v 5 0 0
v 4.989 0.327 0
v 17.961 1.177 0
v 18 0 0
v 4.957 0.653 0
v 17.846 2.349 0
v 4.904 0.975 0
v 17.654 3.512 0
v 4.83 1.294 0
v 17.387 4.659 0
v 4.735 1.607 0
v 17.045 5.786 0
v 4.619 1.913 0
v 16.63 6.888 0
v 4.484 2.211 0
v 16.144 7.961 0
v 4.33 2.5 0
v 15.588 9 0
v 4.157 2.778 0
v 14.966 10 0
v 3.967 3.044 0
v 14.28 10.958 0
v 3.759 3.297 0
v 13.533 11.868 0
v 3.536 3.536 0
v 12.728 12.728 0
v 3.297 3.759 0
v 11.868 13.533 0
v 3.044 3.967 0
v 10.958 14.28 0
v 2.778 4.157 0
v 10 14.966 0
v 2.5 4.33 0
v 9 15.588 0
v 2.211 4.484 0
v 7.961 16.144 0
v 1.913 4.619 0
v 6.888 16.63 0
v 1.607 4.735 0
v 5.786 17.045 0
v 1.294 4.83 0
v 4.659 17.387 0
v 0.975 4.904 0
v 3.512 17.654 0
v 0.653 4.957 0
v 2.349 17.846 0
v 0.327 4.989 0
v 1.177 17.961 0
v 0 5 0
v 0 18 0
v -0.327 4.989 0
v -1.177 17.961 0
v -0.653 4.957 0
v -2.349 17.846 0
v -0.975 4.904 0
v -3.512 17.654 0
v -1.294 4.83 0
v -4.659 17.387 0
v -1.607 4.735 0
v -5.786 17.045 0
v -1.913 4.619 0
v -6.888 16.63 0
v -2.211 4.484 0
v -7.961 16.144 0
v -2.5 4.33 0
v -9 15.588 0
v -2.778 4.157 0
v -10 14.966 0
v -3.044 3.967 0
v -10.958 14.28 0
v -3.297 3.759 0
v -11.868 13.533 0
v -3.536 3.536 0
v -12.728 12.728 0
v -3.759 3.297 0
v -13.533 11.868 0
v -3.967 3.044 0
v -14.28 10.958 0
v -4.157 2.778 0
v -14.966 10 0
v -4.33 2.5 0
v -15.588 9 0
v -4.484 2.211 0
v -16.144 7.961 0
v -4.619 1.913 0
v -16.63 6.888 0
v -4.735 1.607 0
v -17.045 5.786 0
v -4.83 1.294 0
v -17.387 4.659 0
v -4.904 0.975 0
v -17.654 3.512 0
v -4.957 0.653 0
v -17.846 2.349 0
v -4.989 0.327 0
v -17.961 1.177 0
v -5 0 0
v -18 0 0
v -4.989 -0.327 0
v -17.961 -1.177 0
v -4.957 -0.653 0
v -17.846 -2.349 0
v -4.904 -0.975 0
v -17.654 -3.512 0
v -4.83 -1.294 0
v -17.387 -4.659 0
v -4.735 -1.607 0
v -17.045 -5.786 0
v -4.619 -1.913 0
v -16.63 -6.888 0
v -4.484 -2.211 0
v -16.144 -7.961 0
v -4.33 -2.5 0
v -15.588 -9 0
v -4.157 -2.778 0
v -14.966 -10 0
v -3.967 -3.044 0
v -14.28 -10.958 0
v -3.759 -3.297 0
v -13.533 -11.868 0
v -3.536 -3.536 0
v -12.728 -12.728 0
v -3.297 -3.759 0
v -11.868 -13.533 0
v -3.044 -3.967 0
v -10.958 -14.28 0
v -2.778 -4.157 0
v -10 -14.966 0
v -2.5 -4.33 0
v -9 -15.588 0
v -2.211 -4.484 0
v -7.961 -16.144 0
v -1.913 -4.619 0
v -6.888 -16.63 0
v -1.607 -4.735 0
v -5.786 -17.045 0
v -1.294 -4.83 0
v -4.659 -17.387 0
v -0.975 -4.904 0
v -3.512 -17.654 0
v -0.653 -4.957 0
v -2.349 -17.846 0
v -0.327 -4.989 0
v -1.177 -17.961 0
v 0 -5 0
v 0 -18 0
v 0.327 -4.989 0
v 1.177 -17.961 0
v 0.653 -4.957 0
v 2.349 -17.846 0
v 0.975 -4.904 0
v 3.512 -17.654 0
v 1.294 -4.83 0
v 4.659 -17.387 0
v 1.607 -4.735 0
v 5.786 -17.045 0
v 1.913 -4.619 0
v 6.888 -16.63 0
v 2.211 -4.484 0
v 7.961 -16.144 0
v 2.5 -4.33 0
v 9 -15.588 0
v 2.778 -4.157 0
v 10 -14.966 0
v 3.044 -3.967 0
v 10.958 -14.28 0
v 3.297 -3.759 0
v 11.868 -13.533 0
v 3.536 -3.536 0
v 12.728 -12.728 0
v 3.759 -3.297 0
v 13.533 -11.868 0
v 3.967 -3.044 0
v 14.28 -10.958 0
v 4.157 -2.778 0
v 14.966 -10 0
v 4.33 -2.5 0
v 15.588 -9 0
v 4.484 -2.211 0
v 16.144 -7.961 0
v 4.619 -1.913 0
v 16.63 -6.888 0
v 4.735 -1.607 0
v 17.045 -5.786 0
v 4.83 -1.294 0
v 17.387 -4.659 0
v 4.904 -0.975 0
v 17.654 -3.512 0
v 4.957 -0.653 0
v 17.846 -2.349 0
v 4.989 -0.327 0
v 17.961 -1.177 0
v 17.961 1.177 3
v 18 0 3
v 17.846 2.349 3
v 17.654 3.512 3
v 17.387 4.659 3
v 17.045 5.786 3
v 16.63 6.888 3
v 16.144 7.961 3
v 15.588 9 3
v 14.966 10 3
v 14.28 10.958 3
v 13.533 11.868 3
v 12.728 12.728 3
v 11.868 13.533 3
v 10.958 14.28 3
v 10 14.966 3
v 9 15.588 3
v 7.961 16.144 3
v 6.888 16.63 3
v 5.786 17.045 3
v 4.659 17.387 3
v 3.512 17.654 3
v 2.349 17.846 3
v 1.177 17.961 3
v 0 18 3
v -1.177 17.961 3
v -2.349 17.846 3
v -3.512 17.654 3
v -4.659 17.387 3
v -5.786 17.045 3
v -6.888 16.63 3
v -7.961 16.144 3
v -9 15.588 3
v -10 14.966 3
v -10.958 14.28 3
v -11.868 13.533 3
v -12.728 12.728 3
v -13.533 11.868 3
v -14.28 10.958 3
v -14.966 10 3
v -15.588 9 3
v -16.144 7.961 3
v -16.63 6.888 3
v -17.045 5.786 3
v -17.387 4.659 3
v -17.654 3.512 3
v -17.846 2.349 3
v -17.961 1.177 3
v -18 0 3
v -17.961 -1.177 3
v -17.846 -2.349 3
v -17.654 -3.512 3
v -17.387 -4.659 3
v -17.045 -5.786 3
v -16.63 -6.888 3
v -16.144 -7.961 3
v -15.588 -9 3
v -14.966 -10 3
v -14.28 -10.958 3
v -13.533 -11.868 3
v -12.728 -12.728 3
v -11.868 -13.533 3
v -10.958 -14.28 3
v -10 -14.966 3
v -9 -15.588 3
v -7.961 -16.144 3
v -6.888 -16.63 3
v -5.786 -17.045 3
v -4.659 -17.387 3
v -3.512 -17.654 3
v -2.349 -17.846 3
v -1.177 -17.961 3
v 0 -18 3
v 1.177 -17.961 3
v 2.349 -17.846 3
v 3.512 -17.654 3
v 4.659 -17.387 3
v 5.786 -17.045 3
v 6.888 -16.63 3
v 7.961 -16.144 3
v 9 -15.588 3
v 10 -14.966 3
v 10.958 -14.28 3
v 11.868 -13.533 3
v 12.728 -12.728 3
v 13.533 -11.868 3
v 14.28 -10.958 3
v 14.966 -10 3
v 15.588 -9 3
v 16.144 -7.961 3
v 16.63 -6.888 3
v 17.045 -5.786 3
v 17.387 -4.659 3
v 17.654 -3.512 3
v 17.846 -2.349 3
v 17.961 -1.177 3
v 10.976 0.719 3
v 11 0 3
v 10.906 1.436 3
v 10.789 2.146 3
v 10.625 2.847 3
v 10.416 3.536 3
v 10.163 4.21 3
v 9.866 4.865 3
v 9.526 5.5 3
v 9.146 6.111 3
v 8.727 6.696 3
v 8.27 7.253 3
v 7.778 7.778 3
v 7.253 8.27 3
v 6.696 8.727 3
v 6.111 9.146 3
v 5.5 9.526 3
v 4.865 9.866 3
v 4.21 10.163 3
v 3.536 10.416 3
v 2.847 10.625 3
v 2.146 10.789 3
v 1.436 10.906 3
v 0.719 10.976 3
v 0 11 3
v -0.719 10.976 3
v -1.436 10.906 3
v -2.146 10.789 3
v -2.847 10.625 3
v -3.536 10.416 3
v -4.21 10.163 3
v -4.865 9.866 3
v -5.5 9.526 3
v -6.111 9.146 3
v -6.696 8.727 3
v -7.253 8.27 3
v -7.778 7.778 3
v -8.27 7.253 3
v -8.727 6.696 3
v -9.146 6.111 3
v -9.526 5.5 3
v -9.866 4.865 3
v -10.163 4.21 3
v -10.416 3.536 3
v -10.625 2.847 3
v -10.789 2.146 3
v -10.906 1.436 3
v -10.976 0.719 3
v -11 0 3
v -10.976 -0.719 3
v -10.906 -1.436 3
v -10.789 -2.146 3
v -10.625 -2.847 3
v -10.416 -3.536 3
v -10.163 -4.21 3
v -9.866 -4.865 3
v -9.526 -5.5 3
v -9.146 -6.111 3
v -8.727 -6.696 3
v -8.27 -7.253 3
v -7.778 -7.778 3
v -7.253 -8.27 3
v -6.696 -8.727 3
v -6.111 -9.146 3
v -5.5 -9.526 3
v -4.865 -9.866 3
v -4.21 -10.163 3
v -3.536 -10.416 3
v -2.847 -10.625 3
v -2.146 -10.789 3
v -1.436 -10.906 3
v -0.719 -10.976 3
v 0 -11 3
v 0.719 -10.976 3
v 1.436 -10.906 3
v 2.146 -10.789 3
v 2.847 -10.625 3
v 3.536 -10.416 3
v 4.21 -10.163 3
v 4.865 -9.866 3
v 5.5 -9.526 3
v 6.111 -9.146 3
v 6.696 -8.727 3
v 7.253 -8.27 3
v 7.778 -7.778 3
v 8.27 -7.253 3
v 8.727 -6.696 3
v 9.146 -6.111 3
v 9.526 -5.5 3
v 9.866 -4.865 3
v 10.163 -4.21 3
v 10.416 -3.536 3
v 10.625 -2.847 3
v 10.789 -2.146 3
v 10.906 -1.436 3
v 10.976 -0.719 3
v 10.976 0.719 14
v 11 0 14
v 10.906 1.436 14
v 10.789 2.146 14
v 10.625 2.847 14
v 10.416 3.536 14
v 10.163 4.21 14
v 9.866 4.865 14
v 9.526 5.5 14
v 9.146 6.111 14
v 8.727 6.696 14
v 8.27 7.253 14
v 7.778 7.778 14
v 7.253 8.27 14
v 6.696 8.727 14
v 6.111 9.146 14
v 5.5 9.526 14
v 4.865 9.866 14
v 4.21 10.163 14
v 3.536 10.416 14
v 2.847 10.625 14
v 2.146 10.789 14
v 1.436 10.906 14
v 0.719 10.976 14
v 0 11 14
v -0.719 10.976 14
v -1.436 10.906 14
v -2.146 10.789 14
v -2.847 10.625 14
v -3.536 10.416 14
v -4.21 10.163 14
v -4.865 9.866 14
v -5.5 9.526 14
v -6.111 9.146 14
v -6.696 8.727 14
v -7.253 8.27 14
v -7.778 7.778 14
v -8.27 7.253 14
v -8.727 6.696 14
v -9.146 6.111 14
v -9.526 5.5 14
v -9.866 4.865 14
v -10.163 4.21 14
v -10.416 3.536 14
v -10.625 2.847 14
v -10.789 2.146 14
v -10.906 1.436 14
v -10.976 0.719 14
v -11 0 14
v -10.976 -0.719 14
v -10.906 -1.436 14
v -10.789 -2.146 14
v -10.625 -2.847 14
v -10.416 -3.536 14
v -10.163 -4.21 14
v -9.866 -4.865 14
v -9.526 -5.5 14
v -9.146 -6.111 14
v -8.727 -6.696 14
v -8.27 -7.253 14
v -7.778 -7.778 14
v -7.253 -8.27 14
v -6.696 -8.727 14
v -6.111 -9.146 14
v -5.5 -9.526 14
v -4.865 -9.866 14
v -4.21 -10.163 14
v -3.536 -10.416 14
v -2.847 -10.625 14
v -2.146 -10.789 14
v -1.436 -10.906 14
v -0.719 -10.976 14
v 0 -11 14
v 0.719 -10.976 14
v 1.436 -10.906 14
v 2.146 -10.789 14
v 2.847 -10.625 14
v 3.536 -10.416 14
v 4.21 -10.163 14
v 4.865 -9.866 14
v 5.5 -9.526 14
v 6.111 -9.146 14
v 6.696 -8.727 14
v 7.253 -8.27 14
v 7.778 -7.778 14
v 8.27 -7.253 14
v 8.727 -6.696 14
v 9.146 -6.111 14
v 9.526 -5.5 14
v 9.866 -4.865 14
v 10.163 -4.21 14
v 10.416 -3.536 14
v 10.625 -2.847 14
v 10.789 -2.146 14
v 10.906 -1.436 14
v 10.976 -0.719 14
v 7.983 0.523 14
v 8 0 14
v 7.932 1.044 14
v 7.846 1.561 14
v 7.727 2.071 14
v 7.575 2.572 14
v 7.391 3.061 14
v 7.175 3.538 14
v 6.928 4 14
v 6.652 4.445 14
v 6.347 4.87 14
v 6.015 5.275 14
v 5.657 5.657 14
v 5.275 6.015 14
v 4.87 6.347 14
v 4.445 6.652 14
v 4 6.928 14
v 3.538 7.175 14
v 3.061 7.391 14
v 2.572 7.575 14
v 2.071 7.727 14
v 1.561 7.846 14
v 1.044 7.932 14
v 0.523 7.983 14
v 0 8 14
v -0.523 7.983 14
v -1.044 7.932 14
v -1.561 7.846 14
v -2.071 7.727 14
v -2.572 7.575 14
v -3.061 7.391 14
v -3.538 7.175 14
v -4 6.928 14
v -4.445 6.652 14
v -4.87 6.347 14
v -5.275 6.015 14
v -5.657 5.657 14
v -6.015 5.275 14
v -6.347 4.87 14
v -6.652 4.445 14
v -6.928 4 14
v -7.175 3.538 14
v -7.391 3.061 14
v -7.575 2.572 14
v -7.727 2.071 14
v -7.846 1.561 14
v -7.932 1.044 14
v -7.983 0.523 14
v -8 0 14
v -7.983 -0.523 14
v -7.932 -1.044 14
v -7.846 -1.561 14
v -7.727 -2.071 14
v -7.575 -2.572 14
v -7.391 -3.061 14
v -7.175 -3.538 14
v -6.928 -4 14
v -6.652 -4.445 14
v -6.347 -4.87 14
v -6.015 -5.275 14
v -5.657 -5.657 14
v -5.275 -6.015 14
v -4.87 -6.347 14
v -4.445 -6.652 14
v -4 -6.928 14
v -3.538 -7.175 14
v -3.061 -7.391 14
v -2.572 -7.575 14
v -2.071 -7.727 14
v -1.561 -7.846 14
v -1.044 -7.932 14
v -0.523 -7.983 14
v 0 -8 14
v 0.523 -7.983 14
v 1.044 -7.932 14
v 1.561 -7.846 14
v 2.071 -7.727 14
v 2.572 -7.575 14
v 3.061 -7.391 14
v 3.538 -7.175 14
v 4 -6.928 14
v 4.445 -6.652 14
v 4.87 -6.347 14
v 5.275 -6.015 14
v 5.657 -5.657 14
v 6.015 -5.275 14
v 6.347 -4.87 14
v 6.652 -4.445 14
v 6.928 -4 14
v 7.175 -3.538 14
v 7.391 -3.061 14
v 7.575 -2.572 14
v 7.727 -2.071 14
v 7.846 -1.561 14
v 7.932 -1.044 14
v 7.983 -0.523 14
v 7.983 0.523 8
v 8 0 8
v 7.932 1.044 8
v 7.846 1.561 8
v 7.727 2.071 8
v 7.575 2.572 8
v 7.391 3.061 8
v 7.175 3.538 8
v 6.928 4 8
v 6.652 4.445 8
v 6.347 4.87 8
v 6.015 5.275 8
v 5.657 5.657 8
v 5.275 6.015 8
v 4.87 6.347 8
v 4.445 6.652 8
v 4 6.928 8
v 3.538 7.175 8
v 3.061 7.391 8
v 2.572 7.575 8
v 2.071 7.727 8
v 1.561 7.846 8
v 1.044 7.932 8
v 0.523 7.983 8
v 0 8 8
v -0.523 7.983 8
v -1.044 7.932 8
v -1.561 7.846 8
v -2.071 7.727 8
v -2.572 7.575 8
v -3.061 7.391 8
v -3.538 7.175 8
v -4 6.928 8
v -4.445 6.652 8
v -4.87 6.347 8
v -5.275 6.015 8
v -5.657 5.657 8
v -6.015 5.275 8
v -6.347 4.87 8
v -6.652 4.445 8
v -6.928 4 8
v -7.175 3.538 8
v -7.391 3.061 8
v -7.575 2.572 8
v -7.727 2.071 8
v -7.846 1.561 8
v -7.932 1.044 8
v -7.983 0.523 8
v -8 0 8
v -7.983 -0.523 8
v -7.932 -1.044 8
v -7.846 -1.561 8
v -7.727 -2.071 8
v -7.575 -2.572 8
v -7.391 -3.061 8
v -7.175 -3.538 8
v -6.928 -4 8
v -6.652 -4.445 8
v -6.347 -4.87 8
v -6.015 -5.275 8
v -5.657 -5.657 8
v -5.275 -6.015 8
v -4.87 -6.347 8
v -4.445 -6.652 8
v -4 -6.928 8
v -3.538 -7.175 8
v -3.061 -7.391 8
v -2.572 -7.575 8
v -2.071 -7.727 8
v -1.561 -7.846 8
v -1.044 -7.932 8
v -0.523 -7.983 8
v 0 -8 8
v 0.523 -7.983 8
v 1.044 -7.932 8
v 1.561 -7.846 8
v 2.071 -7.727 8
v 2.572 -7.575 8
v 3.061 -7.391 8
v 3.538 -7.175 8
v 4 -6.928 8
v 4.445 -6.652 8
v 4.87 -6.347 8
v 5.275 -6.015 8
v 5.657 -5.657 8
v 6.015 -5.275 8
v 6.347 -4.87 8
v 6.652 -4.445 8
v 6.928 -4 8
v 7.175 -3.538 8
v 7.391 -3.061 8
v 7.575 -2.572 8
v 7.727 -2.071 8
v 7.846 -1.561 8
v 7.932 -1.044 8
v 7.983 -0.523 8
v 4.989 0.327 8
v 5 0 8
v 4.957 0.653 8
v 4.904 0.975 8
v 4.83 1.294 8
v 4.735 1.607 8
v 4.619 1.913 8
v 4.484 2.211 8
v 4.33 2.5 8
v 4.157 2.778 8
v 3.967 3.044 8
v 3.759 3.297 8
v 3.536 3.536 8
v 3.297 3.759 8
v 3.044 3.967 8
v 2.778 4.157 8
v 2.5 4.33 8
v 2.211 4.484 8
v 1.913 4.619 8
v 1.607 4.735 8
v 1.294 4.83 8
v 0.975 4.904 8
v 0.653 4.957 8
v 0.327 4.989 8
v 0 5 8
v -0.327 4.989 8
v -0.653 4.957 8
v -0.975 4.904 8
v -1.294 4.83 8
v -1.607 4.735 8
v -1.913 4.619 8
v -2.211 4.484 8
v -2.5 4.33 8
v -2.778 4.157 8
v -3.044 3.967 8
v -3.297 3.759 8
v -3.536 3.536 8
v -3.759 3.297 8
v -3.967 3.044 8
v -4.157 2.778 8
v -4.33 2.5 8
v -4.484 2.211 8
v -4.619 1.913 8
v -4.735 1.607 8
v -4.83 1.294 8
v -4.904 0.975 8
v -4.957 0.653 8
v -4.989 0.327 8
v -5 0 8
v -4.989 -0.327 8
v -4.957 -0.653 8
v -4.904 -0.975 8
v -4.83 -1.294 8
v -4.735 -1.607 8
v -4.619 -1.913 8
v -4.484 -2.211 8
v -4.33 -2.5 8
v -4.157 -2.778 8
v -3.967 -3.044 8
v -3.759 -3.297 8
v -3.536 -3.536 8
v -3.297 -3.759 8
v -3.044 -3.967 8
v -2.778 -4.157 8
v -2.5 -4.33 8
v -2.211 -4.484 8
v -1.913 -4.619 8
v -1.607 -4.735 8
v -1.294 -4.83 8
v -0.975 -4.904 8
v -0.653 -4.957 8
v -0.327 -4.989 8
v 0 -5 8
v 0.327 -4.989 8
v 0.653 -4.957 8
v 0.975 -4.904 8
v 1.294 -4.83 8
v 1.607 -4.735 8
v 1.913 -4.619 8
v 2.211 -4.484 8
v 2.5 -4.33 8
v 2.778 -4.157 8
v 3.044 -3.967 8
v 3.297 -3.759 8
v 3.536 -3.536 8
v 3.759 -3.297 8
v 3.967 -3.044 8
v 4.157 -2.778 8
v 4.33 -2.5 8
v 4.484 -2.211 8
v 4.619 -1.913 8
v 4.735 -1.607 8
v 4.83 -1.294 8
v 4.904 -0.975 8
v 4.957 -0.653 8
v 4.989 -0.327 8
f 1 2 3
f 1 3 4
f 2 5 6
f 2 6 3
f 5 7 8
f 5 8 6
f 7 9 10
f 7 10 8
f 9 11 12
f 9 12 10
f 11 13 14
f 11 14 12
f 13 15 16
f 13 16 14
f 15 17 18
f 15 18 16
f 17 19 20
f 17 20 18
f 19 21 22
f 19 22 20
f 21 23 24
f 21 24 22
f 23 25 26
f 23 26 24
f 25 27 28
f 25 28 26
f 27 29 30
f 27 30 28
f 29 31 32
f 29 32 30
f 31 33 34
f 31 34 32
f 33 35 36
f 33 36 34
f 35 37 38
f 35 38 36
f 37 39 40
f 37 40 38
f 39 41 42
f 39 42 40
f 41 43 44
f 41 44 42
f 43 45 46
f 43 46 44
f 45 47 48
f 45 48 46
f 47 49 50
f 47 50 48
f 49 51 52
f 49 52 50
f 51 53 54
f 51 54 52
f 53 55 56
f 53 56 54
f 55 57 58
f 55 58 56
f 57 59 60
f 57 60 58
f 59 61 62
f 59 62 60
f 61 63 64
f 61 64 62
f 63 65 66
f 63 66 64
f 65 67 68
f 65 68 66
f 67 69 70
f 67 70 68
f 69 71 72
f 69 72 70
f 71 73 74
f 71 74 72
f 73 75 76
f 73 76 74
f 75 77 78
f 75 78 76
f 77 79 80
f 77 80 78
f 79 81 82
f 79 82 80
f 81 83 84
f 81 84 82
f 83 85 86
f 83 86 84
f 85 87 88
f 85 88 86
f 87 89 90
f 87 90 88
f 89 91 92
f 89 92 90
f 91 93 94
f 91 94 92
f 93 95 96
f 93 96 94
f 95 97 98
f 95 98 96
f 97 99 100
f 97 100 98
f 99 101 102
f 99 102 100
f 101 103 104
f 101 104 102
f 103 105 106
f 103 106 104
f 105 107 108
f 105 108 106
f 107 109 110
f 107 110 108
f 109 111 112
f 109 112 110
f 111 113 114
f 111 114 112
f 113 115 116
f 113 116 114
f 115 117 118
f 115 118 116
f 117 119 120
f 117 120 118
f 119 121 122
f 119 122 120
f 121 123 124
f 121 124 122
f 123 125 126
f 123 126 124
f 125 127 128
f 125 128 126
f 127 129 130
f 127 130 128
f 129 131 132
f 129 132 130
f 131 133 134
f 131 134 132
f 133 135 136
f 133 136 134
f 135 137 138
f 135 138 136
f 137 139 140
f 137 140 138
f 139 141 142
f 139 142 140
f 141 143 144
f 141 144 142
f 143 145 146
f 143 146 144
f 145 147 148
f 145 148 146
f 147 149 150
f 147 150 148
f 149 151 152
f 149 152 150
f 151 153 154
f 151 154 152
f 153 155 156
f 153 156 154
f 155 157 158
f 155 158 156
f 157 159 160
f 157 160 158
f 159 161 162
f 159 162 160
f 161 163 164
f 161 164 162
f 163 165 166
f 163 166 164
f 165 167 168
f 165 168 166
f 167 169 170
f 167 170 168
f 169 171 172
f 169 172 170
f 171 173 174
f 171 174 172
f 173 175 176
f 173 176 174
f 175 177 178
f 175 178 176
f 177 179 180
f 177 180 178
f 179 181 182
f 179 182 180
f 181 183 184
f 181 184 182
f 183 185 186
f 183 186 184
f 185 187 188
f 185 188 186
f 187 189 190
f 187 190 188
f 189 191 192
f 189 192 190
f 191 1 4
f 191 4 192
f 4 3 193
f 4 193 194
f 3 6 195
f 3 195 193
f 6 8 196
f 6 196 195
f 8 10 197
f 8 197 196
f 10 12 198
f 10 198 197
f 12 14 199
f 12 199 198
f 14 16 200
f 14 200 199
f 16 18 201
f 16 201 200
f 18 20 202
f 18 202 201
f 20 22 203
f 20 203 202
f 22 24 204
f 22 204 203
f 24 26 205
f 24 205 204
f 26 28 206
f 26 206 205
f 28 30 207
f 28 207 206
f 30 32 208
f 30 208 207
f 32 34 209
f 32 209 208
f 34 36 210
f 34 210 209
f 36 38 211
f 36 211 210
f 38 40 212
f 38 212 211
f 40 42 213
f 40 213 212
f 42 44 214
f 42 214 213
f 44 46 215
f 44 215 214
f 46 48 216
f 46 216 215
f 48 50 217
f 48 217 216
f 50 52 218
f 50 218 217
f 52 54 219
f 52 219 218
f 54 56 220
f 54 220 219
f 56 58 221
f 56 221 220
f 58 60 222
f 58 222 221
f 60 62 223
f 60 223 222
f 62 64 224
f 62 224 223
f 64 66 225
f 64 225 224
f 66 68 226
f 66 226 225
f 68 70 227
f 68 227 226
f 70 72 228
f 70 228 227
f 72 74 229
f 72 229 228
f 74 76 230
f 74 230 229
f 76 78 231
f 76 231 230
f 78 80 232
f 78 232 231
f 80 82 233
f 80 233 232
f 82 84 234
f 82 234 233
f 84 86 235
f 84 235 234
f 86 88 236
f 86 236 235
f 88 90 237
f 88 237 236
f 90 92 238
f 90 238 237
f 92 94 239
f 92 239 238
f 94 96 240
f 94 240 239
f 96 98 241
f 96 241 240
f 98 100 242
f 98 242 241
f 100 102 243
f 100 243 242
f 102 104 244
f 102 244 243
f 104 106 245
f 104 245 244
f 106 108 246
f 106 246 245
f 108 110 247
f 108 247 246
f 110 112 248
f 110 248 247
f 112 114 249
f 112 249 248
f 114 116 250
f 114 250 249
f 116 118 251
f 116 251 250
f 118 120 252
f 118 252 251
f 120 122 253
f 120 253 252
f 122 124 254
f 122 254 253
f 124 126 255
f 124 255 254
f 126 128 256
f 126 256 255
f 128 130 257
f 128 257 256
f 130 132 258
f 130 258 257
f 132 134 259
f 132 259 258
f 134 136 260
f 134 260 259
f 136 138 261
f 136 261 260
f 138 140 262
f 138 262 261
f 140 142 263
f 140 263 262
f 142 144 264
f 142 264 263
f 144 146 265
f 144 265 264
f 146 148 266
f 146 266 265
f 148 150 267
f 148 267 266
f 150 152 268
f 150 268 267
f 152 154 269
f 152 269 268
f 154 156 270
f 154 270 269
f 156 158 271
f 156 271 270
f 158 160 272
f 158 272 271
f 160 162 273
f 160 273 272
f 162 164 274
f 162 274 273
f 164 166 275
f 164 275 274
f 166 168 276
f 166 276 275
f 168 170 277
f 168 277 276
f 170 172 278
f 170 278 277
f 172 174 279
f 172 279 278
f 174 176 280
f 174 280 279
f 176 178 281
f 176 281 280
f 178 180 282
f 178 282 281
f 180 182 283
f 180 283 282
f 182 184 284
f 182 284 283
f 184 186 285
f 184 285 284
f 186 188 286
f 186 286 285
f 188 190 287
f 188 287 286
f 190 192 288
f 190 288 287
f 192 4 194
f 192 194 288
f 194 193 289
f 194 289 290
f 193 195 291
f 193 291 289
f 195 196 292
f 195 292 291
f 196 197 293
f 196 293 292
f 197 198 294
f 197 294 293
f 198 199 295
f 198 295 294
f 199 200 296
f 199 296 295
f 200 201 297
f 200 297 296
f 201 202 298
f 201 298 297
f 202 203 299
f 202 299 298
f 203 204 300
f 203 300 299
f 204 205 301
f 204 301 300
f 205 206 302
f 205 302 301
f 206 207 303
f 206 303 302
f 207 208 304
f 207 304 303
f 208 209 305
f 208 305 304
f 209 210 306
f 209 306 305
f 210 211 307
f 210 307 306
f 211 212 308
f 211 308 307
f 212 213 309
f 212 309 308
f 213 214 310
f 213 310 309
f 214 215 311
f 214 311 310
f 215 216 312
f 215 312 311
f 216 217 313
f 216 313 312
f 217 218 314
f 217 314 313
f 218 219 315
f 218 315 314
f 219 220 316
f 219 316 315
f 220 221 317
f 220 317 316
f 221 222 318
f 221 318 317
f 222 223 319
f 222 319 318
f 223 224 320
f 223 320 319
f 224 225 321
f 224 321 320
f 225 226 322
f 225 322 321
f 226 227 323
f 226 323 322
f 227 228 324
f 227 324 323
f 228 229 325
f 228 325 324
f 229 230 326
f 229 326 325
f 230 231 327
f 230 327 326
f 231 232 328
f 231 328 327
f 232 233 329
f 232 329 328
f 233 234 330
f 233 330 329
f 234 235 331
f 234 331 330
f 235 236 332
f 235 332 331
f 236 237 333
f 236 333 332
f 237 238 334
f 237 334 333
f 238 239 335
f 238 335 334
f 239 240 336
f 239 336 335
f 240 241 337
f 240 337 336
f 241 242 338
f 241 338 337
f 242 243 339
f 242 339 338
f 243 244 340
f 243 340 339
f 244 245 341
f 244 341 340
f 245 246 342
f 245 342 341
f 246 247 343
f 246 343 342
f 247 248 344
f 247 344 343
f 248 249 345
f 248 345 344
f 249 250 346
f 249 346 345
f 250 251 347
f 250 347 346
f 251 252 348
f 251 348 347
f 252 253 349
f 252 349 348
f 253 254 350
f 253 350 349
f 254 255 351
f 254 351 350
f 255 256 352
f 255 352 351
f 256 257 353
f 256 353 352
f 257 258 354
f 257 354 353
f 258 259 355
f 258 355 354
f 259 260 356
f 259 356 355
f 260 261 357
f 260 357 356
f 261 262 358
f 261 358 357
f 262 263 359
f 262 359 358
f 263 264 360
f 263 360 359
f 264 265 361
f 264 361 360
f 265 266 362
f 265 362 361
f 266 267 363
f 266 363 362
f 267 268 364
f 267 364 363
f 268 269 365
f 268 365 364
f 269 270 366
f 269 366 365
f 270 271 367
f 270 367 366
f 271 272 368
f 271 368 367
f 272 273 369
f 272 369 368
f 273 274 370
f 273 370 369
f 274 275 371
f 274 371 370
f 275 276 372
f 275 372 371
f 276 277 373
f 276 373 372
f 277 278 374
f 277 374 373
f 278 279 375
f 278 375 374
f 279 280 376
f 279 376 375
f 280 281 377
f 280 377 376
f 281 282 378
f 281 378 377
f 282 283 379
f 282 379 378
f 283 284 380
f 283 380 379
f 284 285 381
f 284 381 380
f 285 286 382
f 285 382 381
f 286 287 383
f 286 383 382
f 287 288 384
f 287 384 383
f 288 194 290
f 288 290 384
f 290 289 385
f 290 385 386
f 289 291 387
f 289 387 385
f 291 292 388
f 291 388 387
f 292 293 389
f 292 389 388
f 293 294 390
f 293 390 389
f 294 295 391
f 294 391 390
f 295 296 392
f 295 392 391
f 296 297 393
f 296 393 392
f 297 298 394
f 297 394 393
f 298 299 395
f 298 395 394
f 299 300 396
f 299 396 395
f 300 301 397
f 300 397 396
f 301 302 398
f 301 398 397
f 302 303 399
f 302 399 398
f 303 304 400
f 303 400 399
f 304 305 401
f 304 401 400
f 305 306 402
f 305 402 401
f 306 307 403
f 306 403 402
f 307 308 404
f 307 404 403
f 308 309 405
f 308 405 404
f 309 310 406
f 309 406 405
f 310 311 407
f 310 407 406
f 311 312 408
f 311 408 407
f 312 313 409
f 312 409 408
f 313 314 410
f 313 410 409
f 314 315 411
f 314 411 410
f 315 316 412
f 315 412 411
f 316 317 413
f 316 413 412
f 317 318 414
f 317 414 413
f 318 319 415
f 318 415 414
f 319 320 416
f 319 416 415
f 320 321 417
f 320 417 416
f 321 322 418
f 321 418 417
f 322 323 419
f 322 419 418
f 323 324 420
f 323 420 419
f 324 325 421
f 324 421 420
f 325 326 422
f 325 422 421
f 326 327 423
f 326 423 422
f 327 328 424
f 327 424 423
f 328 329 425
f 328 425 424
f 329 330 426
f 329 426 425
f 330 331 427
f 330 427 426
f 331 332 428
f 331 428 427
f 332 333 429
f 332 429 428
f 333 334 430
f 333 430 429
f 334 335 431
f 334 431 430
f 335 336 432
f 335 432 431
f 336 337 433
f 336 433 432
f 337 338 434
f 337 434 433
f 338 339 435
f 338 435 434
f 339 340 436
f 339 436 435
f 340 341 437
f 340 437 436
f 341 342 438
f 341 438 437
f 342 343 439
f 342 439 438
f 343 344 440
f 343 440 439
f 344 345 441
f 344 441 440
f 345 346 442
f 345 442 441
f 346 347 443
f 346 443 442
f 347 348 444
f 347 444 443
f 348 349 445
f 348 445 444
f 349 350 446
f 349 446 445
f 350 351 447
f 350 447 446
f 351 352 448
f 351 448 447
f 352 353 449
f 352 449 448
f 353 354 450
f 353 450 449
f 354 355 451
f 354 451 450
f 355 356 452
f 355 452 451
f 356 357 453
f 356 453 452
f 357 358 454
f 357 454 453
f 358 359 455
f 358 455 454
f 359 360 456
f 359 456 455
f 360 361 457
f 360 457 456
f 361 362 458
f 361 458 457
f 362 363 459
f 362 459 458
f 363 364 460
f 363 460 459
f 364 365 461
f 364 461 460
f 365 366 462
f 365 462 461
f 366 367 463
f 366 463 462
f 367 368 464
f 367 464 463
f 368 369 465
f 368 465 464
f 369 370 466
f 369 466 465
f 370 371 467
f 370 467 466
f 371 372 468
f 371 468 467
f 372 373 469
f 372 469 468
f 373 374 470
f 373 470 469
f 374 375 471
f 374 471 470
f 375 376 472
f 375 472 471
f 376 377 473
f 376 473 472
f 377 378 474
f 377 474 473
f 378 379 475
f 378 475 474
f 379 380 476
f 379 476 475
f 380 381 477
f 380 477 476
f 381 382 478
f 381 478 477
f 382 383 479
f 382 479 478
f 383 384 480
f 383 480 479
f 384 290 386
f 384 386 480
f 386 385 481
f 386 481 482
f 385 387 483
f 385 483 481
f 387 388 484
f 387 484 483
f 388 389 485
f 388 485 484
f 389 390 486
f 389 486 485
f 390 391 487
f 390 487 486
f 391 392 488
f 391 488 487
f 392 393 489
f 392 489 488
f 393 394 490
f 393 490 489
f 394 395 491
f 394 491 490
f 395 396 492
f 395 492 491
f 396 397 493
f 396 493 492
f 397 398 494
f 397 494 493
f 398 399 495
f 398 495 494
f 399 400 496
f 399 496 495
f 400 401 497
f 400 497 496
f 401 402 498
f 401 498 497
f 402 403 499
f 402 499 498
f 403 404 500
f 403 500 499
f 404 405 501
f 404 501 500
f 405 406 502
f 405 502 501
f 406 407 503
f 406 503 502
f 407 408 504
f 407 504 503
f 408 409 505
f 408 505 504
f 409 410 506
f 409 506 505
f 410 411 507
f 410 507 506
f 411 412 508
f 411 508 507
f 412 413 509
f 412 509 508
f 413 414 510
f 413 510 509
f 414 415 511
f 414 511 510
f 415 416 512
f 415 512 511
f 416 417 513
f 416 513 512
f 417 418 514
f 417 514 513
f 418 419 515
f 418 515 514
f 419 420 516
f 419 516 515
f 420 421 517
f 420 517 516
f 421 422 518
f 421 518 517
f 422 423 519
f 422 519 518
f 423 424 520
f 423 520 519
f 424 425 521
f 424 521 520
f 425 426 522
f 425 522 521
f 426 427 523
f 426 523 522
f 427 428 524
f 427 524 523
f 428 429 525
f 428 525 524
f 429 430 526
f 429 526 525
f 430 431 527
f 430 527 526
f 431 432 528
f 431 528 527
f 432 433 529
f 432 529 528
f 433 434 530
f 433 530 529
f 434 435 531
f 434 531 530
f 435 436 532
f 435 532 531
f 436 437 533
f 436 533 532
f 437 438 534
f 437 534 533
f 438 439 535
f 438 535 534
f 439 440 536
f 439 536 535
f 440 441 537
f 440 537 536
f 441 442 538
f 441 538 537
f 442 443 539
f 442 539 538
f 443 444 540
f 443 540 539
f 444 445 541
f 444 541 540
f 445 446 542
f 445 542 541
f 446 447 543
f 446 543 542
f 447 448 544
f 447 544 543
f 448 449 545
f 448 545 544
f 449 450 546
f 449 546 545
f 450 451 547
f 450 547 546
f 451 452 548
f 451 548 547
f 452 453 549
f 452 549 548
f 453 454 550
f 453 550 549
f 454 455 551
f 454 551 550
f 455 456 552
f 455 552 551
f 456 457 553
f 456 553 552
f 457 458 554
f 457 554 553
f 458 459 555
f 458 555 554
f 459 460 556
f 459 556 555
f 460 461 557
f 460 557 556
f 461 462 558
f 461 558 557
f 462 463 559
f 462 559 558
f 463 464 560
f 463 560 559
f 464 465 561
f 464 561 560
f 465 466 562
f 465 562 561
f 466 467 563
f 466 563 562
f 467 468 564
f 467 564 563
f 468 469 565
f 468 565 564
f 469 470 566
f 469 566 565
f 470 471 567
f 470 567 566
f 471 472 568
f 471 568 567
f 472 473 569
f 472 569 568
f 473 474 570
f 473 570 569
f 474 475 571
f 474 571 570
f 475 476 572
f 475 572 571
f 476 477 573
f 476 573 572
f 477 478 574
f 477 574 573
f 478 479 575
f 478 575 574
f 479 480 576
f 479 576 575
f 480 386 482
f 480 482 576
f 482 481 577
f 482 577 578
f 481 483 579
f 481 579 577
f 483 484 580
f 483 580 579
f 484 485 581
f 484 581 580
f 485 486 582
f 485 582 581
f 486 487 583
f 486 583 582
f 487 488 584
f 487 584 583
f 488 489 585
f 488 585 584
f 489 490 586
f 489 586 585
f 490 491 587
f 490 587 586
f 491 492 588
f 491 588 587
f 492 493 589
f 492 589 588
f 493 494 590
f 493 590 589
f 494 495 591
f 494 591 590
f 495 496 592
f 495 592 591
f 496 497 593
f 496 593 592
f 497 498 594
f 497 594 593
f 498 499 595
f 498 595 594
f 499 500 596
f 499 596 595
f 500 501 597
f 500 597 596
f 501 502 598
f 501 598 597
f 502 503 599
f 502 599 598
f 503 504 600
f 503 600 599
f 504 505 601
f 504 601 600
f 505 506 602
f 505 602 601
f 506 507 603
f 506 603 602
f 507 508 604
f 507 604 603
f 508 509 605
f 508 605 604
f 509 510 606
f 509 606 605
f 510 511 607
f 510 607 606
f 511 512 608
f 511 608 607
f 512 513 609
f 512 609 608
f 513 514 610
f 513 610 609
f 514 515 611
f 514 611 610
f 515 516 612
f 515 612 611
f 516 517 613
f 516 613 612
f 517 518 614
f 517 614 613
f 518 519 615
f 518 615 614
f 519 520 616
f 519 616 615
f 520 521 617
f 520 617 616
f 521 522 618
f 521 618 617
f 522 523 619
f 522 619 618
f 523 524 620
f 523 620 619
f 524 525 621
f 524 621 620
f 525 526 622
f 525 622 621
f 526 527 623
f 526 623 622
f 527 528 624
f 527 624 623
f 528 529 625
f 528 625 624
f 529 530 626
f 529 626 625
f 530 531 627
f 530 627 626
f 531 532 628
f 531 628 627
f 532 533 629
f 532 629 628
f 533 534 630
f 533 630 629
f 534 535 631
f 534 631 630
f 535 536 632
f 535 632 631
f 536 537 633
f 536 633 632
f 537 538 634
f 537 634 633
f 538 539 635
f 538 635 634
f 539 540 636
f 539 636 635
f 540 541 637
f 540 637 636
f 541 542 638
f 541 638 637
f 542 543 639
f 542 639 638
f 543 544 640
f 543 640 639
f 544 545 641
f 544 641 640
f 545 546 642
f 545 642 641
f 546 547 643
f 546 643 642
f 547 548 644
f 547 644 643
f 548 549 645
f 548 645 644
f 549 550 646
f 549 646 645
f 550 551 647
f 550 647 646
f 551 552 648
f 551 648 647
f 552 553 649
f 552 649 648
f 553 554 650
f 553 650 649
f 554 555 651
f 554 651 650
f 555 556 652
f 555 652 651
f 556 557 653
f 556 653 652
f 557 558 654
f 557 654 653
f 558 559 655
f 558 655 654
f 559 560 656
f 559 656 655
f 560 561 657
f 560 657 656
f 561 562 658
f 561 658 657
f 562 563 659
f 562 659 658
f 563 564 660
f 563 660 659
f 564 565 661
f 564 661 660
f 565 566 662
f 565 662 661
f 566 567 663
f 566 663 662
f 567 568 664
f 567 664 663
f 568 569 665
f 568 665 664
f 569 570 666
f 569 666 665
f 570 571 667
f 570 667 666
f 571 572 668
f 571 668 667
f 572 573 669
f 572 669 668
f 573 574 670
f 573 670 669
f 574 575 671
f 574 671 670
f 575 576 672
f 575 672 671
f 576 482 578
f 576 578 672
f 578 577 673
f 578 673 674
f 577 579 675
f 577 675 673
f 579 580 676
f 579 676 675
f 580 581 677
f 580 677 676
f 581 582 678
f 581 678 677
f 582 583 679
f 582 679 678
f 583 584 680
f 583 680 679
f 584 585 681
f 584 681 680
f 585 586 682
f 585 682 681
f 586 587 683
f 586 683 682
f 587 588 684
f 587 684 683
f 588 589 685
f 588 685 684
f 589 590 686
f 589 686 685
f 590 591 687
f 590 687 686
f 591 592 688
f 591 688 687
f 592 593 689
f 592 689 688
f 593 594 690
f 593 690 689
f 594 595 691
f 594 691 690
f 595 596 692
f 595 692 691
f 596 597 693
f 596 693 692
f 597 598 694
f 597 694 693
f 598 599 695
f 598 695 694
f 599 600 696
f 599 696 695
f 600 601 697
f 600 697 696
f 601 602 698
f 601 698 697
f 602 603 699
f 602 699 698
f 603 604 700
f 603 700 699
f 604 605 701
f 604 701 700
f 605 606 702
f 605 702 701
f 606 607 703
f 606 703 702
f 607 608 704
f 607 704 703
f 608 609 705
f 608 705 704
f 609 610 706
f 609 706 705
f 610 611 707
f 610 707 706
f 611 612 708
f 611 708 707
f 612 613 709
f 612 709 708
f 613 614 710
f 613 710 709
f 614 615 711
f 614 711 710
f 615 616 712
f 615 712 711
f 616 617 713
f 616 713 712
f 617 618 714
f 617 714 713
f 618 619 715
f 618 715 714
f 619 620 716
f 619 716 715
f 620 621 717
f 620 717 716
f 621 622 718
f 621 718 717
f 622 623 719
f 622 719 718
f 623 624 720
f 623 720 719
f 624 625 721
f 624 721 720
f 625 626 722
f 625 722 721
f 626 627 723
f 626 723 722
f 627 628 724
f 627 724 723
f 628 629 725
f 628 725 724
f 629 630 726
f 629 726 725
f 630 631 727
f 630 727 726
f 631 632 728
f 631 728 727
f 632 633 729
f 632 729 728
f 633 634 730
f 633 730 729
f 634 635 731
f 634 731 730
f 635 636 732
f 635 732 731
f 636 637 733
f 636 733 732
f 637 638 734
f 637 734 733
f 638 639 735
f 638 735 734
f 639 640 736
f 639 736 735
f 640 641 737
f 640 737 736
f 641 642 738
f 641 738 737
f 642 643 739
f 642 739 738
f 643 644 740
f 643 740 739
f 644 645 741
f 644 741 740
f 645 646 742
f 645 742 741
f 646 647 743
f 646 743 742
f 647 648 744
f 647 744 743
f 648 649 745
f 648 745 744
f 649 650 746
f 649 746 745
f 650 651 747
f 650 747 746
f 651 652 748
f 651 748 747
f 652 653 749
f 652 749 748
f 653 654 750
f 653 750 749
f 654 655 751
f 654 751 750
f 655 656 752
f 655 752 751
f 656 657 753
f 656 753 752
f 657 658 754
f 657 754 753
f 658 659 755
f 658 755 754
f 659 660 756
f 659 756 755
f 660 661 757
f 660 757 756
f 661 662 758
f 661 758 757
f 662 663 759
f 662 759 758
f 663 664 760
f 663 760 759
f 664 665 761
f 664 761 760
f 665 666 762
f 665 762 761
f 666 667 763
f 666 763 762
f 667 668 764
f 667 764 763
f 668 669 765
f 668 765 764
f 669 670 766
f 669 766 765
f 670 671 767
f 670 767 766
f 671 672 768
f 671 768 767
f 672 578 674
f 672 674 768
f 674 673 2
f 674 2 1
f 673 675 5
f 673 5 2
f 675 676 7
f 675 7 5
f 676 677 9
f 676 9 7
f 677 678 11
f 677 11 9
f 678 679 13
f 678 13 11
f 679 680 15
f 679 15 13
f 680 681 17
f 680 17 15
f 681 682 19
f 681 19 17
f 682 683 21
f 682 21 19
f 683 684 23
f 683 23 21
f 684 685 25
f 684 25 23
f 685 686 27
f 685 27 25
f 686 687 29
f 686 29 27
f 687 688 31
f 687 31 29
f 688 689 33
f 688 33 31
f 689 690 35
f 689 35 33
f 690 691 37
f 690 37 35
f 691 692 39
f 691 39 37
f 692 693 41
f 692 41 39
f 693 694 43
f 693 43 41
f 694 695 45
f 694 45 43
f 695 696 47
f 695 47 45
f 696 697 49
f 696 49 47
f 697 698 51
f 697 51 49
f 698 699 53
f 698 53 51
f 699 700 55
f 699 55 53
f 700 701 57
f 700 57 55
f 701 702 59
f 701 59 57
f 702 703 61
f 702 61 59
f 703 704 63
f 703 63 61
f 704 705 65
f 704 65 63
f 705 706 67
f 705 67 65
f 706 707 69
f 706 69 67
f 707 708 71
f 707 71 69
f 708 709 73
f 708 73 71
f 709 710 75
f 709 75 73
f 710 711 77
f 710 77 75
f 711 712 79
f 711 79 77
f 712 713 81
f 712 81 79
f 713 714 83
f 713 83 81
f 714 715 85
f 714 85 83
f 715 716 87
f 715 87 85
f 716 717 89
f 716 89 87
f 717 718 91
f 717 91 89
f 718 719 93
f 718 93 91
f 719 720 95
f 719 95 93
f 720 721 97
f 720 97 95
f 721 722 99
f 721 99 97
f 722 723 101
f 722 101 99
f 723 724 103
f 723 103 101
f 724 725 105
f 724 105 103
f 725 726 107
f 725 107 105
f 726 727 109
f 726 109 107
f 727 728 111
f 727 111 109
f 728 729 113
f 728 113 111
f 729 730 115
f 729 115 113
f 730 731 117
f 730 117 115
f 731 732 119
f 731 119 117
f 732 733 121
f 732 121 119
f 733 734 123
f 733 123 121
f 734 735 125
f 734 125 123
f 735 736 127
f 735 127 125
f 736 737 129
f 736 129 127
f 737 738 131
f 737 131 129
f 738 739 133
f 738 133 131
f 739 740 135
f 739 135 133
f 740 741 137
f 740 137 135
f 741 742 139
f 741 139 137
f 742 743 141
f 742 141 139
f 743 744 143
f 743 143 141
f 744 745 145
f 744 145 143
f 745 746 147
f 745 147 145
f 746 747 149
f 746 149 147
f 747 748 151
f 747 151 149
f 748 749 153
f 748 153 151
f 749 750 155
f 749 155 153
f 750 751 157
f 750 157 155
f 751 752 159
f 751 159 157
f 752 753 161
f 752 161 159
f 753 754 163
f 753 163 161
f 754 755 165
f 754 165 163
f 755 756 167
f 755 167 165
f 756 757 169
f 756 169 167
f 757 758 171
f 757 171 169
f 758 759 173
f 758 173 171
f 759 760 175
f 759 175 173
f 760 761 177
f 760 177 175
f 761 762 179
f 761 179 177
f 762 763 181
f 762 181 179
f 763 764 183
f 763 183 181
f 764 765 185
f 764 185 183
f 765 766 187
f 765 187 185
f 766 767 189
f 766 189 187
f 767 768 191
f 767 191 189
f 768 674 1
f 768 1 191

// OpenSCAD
// Original MechIntel educational model. CC0-1.0. Units: mm.
// Not a standardized or load-rated component.
$fn=96;
// Section points: [radius, height], mm. Edit to change the profile.
section=[[5, 0], [18, 0], [18, 3], [11, 3], [11, 14], [8, 14], [8, 8], [5, 8]];
rotate_extrude($fn=96) polygon(points=section);
